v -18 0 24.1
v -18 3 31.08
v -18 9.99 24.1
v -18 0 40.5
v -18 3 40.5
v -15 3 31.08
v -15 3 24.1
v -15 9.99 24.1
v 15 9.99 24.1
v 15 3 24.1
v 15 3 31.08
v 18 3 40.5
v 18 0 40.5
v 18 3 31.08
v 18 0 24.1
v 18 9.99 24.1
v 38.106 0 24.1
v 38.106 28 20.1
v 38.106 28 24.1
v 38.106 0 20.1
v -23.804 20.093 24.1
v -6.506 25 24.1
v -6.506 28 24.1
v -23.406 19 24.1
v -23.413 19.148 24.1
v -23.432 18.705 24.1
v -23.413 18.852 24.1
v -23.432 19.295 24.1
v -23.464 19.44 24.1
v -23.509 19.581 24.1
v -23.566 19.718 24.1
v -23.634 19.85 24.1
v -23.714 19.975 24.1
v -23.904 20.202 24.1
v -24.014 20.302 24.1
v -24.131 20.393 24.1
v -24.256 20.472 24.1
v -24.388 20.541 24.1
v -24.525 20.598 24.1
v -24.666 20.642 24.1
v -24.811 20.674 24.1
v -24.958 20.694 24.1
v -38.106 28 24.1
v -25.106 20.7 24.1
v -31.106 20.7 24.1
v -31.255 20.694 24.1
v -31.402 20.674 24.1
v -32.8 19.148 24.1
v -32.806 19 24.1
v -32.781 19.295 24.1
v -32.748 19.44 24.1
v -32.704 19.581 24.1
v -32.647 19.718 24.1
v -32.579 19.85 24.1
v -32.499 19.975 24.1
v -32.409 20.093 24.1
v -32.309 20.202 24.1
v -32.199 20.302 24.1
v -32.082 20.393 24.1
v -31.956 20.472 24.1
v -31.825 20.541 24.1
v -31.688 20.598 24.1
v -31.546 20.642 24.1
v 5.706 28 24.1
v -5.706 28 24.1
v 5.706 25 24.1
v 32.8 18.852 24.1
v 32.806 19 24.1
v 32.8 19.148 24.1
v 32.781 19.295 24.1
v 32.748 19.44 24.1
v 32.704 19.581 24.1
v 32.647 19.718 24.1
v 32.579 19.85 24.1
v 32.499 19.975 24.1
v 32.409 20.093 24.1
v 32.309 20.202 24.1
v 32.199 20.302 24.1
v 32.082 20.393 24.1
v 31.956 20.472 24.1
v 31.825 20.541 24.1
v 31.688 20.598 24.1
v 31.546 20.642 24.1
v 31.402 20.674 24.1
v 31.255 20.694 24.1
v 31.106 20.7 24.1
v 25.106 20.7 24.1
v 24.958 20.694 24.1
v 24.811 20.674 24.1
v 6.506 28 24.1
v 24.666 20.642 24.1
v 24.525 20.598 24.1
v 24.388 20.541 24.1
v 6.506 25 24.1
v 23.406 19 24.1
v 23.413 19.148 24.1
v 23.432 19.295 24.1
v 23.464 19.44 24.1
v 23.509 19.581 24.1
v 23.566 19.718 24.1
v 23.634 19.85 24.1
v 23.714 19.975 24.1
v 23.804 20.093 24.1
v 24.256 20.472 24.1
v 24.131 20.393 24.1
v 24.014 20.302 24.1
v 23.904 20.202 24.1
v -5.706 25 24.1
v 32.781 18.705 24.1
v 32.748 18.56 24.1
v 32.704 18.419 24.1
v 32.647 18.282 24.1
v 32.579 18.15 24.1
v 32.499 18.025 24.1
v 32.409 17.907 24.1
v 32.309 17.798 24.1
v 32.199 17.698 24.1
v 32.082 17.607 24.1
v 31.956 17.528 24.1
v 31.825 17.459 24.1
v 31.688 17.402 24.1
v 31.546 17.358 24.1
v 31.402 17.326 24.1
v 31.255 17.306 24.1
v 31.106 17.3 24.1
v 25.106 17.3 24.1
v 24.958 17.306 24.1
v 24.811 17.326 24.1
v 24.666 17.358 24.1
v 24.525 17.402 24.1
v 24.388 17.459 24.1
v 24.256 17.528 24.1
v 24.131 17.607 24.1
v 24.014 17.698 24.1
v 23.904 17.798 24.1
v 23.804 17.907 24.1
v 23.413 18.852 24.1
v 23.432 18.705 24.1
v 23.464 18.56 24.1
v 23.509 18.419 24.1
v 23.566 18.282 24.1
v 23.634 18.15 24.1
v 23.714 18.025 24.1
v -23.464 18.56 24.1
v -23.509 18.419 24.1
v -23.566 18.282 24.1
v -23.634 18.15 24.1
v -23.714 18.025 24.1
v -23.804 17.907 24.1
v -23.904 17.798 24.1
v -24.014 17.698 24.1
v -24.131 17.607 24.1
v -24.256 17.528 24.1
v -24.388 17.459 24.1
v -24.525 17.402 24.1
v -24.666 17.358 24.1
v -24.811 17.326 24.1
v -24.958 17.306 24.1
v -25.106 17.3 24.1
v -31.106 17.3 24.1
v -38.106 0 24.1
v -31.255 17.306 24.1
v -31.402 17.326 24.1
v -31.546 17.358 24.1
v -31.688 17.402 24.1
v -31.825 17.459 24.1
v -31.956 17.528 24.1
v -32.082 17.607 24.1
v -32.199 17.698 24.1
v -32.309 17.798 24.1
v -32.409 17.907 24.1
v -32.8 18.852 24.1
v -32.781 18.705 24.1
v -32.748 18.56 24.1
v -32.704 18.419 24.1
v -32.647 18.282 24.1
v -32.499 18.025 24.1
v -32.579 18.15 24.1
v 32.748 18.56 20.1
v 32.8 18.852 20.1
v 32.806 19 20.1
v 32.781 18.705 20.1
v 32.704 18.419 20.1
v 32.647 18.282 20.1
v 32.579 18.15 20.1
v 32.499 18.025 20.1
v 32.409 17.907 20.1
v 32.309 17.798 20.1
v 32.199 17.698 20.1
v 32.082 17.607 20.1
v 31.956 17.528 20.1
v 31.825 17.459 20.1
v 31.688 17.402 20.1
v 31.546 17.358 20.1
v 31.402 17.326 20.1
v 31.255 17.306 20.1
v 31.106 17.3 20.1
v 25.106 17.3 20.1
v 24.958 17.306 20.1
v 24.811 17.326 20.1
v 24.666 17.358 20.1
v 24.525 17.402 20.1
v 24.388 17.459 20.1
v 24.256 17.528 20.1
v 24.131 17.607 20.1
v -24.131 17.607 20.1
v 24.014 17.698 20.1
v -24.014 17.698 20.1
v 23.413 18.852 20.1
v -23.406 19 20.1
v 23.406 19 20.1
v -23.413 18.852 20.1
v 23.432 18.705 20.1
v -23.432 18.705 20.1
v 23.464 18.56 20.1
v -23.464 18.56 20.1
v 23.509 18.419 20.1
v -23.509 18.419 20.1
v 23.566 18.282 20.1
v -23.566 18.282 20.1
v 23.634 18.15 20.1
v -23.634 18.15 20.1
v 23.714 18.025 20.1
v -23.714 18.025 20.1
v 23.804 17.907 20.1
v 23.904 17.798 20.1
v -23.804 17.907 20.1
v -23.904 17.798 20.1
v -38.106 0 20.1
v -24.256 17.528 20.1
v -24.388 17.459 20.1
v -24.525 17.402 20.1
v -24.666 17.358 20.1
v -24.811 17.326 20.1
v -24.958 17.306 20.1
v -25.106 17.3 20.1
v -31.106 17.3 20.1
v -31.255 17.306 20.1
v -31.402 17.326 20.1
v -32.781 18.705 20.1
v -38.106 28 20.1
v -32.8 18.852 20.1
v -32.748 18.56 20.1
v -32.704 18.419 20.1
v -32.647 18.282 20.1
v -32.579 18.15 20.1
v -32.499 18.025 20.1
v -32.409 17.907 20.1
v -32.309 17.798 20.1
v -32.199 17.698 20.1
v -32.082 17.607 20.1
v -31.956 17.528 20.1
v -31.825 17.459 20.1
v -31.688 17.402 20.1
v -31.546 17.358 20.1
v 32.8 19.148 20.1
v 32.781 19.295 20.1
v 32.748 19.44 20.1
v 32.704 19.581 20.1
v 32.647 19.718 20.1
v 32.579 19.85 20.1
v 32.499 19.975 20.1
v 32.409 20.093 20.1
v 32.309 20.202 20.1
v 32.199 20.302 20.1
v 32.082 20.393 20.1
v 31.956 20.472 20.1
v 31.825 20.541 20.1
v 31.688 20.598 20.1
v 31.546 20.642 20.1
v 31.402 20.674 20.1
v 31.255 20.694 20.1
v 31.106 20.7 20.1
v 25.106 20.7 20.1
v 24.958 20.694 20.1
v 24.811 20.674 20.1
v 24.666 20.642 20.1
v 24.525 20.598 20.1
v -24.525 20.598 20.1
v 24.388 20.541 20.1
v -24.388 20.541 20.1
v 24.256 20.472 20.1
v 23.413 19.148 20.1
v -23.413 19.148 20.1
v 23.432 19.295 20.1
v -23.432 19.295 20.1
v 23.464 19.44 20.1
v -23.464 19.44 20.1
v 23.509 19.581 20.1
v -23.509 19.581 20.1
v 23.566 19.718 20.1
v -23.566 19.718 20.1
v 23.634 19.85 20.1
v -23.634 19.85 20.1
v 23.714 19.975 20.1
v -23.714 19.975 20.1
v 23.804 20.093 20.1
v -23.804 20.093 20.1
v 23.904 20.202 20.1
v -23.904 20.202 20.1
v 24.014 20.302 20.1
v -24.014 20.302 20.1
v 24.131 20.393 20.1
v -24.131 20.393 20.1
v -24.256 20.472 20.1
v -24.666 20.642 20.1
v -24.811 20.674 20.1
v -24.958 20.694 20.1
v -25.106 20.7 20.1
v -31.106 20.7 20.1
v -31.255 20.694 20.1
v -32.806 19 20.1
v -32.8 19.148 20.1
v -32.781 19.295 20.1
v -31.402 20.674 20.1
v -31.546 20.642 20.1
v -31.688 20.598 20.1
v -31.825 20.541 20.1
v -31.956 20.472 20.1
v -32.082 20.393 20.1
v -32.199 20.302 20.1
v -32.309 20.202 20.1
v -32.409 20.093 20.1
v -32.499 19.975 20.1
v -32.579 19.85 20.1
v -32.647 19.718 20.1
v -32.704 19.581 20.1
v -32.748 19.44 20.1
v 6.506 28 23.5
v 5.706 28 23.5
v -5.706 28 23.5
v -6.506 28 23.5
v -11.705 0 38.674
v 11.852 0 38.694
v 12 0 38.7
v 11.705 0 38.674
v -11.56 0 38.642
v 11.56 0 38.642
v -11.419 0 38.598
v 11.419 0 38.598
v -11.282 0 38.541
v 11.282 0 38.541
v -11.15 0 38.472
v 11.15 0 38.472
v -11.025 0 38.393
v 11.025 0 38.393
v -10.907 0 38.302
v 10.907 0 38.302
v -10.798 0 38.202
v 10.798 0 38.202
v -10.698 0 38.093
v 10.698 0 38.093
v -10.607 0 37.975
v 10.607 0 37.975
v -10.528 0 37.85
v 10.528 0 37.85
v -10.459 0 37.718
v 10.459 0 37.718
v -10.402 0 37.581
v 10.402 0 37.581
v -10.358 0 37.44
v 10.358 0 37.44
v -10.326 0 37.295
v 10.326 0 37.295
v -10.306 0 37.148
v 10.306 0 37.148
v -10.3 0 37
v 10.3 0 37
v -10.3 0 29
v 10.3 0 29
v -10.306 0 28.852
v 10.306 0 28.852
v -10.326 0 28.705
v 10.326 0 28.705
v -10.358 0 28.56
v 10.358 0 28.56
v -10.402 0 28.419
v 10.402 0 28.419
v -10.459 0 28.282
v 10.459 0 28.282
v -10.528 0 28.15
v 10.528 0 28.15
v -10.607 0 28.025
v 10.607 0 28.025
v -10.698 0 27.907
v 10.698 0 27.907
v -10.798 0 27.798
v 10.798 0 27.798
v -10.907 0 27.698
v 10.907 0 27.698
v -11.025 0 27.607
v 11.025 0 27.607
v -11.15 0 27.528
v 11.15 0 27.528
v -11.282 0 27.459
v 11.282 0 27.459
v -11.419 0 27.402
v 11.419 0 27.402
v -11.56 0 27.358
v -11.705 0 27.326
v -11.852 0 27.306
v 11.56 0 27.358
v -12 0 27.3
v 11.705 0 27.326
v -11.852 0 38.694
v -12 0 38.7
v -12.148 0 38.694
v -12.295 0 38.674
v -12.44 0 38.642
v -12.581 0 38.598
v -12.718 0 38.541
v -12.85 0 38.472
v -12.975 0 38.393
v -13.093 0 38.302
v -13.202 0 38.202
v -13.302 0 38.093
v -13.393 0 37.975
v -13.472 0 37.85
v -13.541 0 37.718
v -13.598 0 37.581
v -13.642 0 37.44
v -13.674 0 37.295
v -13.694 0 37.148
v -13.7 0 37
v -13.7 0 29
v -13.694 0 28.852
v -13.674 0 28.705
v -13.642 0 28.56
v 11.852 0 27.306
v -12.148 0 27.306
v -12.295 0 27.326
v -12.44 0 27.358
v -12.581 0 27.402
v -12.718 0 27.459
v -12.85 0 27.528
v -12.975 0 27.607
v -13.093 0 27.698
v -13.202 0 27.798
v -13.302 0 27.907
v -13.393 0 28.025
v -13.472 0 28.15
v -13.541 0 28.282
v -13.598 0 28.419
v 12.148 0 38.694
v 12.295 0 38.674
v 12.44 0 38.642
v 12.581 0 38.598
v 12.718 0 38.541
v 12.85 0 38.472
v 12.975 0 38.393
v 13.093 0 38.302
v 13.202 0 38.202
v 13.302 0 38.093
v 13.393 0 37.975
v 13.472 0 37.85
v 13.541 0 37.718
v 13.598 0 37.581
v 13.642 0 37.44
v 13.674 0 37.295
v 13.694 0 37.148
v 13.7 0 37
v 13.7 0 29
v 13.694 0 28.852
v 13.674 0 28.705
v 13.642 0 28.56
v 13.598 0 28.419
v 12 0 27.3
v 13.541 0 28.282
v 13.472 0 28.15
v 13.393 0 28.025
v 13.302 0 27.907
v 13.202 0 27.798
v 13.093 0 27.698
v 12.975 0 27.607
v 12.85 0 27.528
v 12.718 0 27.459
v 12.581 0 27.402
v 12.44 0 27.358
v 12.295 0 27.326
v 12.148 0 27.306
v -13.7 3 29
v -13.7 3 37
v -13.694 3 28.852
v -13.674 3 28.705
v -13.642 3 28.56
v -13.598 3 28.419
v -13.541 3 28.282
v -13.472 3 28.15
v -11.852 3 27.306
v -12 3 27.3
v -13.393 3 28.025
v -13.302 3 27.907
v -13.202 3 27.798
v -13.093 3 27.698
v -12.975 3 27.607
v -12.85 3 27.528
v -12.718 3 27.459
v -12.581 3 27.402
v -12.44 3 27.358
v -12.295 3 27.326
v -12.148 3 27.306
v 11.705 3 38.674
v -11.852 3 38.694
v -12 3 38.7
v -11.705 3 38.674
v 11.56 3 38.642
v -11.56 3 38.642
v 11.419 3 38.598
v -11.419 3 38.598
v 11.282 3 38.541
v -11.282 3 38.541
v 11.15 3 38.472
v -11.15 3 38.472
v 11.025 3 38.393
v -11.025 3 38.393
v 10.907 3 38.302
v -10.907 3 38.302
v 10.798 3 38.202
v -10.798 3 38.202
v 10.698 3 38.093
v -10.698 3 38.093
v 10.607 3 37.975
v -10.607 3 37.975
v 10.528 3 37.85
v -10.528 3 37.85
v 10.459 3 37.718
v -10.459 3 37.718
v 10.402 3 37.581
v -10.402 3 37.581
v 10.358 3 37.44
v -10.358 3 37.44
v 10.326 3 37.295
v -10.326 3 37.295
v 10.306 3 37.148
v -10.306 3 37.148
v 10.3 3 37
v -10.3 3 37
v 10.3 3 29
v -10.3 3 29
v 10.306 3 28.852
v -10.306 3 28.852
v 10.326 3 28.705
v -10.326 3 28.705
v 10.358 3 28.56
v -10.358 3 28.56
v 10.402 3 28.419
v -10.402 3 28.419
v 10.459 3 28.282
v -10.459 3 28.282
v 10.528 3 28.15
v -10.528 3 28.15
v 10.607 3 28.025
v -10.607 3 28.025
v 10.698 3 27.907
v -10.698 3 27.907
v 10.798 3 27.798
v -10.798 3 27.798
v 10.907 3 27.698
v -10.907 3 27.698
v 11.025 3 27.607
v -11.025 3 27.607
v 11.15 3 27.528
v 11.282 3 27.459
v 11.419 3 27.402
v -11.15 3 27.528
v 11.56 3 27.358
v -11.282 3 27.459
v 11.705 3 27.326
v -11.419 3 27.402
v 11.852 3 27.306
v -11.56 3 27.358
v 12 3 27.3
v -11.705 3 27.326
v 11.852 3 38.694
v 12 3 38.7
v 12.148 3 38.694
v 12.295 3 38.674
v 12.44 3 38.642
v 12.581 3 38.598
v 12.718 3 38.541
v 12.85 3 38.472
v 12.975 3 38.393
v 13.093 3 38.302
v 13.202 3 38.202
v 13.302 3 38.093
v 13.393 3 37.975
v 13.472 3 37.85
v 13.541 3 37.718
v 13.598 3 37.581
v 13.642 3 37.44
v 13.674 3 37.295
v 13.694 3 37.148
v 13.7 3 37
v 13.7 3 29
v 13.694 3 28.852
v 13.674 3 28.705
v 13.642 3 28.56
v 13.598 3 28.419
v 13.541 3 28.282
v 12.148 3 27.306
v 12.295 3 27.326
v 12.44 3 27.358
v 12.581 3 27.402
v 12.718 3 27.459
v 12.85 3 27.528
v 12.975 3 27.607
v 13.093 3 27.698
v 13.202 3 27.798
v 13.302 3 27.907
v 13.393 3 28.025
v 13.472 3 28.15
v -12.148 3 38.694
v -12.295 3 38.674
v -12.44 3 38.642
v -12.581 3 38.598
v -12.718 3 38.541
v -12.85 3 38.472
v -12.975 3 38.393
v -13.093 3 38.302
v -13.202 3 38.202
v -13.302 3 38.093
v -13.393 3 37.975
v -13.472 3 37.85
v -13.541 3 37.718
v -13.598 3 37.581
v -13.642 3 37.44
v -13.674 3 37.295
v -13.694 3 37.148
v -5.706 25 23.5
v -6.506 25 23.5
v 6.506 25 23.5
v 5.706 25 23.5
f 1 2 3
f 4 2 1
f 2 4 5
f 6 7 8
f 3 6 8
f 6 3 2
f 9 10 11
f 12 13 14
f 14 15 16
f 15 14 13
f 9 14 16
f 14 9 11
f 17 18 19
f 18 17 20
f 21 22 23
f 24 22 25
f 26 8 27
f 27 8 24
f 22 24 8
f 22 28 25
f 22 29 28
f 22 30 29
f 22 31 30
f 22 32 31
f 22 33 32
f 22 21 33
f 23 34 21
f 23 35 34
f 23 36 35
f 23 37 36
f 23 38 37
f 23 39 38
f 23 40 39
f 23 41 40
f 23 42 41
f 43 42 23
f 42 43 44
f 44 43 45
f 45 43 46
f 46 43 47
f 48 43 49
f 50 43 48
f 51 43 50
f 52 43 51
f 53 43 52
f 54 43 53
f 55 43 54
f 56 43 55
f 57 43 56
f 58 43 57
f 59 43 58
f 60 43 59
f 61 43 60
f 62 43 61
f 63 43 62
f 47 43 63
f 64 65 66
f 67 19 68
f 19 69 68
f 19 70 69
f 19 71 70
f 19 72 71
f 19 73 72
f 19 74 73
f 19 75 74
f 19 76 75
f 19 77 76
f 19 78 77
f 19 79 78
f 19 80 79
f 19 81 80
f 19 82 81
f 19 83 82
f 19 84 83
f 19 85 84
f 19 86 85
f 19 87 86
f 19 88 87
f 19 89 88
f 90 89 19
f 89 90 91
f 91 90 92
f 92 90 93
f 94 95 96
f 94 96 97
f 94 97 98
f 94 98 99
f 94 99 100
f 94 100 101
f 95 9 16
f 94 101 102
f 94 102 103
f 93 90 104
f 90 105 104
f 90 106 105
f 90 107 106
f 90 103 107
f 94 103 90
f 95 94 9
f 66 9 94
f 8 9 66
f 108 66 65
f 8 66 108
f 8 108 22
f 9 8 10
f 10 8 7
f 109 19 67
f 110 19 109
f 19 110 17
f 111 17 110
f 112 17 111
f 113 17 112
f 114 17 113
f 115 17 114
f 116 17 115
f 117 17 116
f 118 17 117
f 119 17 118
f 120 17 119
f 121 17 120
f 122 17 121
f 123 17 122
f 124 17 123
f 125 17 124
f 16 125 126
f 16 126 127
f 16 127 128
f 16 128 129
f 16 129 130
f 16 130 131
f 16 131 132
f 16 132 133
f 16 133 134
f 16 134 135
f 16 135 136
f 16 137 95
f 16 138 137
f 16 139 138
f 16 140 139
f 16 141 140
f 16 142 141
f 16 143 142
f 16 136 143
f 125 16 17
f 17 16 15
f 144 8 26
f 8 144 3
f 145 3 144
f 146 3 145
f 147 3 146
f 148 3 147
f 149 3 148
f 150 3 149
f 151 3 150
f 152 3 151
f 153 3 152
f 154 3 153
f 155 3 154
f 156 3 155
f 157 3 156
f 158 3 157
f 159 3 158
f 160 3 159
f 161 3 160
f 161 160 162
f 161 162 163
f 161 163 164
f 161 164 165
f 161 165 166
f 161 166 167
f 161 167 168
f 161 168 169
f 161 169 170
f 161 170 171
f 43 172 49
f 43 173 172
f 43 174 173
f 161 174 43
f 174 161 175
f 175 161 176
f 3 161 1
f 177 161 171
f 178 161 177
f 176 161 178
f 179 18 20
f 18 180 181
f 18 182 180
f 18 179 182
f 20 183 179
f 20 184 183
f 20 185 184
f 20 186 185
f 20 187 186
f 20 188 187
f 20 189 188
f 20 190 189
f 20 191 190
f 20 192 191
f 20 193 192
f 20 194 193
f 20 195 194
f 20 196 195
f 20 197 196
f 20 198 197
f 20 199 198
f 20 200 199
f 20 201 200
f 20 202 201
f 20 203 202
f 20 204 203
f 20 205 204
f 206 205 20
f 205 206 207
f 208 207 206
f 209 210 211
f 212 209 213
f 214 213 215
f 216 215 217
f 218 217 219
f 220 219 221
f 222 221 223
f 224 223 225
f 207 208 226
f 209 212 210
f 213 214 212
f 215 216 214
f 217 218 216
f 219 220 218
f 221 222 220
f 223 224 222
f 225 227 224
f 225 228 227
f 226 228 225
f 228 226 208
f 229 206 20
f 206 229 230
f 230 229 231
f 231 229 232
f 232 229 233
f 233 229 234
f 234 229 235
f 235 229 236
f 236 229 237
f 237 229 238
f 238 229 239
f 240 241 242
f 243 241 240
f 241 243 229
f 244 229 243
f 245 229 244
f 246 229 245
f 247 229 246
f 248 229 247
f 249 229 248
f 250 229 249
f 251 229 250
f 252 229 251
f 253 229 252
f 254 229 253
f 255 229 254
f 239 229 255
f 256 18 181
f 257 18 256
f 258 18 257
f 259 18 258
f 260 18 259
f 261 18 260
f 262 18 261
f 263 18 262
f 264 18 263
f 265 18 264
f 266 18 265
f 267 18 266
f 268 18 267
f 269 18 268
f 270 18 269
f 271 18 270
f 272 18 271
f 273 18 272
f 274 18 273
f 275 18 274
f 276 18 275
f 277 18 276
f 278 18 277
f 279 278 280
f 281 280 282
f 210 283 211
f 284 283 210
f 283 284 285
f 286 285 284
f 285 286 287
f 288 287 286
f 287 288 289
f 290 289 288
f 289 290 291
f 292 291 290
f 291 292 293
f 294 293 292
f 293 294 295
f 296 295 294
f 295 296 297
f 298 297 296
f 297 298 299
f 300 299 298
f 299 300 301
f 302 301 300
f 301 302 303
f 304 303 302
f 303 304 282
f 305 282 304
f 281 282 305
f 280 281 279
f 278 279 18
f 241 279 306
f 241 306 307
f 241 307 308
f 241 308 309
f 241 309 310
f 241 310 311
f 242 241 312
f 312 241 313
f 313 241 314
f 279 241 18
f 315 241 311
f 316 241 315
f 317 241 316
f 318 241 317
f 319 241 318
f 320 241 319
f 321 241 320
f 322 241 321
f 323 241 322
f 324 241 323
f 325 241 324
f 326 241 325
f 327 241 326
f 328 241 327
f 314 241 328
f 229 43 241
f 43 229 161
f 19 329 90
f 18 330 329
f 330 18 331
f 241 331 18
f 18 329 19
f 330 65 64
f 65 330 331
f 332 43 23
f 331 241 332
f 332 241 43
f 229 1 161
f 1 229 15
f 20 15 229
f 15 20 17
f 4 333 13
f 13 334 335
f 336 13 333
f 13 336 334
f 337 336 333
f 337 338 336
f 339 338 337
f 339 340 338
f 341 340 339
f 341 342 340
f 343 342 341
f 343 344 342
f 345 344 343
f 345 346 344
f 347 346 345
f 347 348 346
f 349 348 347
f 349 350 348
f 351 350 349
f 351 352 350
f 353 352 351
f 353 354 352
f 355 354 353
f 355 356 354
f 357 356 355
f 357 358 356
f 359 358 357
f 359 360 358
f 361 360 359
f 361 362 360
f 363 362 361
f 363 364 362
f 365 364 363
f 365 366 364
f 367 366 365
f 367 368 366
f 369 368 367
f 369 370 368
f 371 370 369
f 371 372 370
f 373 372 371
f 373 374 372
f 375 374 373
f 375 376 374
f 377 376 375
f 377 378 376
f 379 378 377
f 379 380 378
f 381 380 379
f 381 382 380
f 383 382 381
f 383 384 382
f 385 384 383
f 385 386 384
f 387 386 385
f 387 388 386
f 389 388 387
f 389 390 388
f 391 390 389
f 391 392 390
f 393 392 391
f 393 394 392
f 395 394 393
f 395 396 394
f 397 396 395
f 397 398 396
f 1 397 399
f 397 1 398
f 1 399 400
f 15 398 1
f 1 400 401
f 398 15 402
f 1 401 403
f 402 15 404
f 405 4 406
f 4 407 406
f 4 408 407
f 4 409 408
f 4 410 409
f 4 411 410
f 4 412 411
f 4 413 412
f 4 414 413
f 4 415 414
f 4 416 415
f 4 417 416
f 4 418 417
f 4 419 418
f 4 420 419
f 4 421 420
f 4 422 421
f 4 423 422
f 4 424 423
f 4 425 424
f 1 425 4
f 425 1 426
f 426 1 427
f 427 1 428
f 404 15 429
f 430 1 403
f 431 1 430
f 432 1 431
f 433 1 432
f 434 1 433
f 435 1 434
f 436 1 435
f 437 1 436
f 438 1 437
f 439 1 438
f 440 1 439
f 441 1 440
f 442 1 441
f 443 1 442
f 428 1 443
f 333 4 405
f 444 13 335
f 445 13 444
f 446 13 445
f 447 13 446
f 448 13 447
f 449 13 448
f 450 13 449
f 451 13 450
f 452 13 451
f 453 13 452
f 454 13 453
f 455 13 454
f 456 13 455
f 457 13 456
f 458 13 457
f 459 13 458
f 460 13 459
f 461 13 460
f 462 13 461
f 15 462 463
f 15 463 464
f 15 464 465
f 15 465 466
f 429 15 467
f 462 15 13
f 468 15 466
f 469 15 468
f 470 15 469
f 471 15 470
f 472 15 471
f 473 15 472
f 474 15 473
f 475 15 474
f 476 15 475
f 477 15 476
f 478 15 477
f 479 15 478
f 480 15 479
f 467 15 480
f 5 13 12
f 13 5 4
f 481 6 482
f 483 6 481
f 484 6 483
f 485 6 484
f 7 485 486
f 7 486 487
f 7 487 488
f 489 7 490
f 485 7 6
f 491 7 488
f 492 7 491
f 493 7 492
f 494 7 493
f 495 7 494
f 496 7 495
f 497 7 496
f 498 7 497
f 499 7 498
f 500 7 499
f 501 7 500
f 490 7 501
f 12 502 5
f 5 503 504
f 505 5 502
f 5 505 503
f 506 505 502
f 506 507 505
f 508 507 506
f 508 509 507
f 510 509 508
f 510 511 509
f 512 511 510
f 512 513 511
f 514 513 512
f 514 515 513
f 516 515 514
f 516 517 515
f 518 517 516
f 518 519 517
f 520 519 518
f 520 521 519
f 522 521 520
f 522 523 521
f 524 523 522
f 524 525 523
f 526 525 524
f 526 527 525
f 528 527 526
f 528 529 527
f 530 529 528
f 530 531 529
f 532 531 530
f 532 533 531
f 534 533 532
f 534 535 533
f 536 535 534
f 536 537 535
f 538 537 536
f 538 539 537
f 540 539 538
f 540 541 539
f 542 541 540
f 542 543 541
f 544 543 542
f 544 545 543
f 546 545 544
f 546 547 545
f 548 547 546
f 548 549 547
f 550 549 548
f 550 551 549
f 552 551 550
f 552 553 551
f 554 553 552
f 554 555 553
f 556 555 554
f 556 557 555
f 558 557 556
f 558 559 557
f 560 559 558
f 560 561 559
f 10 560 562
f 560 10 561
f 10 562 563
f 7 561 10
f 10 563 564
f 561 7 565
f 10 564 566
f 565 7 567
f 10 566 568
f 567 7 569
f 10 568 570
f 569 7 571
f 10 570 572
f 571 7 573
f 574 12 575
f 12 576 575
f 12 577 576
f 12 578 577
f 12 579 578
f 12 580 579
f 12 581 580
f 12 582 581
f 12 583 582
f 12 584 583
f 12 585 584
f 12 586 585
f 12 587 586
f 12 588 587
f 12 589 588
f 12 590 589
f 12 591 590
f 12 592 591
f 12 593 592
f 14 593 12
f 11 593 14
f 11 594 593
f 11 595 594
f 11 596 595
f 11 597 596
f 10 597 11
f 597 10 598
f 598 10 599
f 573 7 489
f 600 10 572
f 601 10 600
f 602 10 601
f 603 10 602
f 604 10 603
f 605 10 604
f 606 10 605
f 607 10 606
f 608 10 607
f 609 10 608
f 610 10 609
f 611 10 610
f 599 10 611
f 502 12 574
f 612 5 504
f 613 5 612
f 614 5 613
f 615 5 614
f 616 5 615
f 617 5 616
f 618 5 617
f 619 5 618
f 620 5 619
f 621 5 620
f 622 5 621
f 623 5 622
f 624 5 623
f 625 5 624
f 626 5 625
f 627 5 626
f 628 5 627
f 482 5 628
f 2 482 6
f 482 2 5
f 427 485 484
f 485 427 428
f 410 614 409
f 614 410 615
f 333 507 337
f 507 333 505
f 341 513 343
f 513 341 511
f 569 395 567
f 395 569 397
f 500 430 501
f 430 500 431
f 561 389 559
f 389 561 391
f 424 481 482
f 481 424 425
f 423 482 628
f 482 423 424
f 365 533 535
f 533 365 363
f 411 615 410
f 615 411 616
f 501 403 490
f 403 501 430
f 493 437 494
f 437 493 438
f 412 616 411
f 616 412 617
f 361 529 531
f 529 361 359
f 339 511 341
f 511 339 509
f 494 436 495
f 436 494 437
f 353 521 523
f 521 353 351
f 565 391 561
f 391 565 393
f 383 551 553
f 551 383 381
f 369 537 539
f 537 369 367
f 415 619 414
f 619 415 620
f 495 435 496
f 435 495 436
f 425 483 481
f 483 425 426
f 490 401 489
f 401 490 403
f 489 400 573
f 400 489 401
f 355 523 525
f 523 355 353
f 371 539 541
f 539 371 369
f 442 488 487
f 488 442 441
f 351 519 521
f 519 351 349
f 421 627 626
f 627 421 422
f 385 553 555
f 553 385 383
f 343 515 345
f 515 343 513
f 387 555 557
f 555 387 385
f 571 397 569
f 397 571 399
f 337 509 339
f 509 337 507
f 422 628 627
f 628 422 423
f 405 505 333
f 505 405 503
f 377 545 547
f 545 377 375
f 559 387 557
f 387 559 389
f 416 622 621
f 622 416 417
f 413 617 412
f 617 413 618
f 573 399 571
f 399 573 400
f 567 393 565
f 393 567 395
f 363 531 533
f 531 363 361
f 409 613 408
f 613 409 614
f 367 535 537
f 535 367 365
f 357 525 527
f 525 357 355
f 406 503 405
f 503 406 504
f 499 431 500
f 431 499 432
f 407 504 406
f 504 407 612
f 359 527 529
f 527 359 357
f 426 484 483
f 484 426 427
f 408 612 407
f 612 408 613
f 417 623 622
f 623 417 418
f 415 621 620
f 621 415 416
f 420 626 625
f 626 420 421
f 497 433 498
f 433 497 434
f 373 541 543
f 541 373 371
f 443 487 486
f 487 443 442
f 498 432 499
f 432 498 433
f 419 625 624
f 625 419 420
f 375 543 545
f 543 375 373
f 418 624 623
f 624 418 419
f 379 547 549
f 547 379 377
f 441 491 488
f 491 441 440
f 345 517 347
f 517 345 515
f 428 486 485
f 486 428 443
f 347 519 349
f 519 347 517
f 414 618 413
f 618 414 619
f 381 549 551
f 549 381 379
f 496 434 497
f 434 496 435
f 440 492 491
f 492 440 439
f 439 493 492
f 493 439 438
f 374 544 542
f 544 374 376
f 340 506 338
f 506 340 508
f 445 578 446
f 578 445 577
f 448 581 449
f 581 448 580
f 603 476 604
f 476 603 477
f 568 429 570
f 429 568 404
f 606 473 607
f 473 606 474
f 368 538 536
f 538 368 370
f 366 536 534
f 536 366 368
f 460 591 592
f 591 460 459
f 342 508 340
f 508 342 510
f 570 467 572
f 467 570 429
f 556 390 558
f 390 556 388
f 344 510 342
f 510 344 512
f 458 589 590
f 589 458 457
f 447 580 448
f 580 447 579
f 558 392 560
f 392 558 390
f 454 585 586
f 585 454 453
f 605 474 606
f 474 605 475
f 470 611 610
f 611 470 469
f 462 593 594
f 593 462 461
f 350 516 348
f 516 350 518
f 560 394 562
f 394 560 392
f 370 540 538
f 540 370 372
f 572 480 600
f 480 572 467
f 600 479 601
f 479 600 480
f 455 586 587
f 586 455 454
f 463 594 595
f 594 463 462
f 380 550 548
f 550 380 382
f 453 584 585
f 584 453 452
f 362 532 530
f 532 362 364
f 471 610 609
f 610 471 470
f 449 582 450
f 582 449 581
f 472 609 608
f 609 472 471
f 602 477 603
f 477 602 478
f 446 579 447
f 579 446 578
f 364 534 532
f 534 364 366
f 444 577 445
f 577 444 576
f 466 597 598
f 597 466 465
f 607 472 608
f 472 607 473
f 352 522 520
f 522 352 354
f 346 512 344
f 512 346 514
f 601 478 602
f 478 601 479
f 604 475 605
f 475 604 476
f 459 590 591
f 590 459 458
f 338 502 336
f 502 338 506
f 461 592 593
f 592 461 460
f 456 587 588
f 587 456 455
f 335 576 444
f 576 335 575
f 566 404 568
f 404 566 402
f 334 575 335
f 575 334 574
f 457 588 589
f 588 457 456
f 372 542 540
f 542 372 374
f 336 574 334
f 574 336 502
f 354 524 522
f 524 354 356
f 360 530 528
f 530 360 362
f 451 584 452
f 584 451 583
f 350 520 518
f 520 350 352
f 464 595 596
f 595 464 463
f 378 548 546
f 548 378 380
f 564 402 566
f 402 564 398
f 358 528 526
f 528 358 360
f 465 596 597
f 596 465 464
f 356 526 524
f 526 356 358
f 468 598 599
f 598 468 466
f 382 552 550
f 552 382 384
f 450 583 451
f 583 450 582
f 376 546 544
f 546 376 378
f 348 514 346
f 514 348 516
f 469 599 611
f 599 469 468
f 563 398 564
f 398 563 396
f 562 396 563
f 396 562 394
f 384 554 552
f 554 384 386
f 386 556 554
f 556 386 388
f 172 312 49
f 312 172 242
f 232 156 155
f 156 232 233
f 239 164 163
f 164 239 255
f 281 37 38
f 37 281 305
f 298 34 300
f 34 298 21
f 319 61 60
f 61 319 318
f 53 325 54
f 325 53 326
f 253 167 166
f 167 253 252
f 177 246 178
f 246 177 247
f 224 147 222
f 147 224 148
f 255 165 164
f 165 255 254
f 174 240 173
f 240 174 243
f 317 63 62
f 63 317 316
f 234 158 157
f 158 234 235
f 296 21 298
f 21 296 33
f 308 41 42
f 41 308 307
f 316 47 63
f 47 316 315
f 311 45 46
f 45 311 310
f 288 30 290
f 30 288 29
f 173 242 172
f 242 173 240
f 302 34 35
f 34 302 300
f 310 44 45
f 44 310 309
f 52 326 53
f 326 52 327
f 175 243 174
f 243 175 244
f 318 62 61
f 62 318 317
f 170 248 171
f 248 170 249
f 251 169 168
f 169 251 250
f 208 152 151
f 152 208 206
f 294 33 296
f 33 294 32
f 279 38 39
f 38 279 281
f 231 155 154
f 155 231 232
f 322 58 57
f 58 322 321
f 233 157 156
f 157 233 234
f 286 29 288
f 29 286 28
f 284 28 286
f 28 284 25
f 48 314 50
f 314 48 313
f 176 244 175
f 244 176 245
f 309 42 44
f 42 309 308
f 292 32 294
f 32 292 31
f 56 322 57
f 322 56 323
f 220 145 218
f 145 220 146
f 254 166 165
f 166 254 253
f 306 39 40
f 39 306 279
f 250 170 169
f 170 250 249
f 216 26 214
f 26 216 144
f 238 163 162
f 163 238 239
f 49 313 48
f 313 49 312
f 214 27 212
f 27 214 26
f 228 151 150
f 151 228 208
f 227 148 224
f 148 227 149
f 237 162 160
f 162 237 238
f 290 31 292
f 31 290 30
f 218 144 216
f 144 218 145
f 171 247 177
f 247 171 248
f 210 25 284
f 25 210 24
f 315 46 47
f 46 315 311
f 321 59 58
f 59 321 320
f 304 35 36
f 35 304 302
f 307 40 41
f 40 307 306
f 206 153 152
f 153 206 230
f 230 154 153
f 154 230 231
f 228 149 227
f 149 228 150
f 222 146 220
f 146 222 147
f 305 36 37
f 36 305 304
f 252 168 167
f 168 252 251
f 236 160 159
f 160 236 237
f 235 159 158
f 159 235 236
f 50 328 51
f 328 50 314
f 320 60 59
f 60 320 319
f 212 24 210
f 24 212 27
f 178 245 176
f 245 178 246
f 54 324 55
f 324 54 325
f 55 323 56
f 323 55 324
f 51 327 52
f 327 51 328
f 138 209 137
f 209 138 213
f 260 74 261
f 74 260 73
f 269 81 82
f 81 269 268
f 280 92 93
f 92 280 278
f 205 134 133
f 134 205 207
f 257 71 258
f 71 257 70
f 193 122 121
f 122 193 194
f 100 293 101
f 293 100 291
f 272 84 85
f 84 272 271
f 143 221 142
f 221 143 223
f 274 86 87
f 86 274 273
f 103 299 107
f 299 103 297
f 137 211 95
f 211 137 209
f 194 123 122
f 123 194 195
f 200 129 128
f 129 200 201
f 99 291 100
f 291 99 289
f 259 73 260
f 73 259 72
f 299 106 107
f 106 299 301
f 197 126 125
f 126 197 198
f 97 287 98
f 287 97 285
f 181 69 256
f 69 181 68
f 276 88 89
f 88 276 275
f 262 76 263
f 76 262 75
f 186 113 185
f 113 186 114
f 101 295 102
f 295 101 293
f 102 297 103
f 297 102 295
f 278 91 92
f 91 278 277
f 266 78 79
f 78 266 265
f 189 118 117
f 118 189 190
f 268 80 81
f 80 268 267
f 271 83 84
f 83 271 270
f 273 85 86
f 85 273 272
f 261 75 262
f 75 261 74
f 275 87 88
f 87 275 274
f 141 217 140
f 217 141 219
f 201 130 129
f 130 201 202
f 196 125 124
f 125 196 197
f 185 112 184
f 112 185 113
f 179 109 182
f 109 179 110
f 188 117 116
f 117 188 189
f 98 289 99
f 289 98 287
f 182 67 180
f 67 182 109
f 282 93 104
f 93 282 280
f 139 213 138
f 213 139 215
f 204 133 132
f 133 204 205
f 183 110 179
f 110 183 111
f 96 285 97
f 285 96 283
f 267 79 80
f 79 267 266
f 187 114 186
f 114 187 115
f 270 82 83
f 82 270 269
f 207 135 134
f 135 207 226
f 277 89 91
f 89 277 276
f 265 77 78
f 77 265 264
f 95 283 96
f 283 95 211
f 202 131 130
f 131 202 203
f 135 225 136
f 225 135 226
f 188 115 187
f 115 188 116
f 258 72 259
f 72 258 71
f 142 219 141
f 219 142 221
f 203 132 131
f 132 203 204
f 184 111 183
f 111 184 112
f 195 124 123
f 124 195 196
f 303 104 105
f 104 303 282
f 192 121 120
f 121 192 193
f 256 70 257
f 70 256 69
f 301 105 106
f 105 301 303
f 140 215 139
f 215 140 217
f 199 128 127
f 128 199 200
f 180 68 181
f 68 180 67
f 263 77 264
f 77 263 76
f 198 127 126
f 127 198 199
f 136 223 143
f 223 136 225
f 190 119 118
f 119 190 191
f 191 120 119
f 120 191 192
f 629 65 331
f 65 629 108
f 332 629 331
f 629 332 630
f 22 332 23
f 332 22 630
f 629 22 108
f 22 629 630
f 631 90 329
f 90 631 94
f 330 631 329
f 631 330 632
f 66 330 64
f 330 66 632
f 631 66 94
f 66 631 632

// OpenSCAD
// file: dimensoes_geradas.scad
// ARQUIVO GERADO por sim/export_gains.py - não edite à mão; mude sim/params.py e gere de novo.
// Unidades: mm. Estas dimensões saem do dimensionamento (sim/sizing.py).

l_w            = 96;   // pivô -> eixo do motor
n_parafusos    = 12;
r_parafusos    = 48;   // raio do círculo de parafusos M8
r_aro_int      = 39;
r_ext          = 58;   // raio externo do aro
r_aleta        = 66;   // raio externo do anel dentado do encoder
esp_roda       = 12;
esp_alma       = 5;
r_cubo         = 17;
n_raios        = 6;
larg_raio      = 10;
esp_aleta      = 2;
n_ranhuras     = 40;
furo_m8        = 8.4;
angulo_batente = 25;   // graus: onde o batente segura o braço
// file: params.scad
// Medidas das peças compradas e escolhas de projeto. Unidades: mm.
//
// CONFERIR = medir com paquímetro na peça real antes de imprimir; os valores
// abaixo são os típicos desses componentes. Este arquivo só tem números
// (nada de expressões): cad/folgas.py lê estes valores para conferir as folgas.
//
// Eixos do conjunto montado: origem no eixo do pivô; Z para cima (ao longo do
// braço); Y ao longo do pivô, positivo para o lado da roda; X lateral.

include <dimensoes_geradas.scad>

$fn = 72;
folga = 0.25;              // folga de impressão em encaixes

// ---- Motor 775 (CONFERIR) ----
motor_d          = 44.5;   // diâmetro da carcaça (há versões de 42)
motor_comp       = 67;     // comprimento da carcaça
motor_ressalto_d = 17.5;   // ressalto do mancal na face
motor_ressalto_h = 4.6;
motor_furos_dist = 29;     // distância entre os 2 furos M4 da face
motor_parafuso_d = 4.4;    // passagem do M4
motor_eixo_d     = 5;
motor_eixo_comp  = 17;     // eixo para fora do ressalto

// ---- Flange metálico de 5 mm (CONFERIR) ----
flange_d         = 22;     // diâmetro do disco
flange_esp       = 3;      // espessura do disco
flange_cubo_d    = 10;     // diâmetro do cubo (parte com os parafusos de trava)
flange_cubo_comp = 9;      // comprimento do cubo
flange_pcd       = 16;     // diâmetro do círculo dos furos
flange_n         = 4;      // número de furos

// ---- Fixadores ----
inserto_m3_d     = 4.0;    // furo para inserto térmico M3 (CONFERIR no seu inserto)
inserto_m3_prof  = 5;
passagem_m3      = 3.4;
m8_chave         = 13;     // porca M8, entre faces
m8_porca_h       = 6.5;
m8_cabeca_h      = 5.3;
m8_arruela_h     = 1.6;
m8_comp          = 16;     // parafuso M8x16 (mais comprido bate no braço)
m4_cabeca_h      = 3;      // cabeça do M4 que prende o motor

// ---- Rolamento 608-ZZ, barra e colar ----
rol_d            = 22;
rol_esp          = 7;
rol_ombro_d      = 15;     // furo entre os assentos: encosta só no anel externo
barra_d          = 8;
colar_d          = 14;     // colar SCC8 8-14-8
colar_esp        = 8;

// ---- Sensor óptico de fenda com LM393 (CONFERIR) ----
sens_comp        = 32;     // placa
sens_larg        = 14;
sens_pcb         = 1.6;
sens_torre_h     = 10.8;   // altura das torres acima da placa
sens_feixe       = 2.8;    // distância do topo das torres ao feixe
sens_fenda       = 5;      // vão entre as torres
sens_cabeca      = 6;      // comprimento do bloco do sensor ao longo da placa
sens_penetra     = 6.5;    // quanto o anel dentado entra na fenda
sens_furo_pos    = 22;     // do centro óptico ao furo de fixação da placa
sens_furo_d      = 2.6;    // furo guia para parafuso M3 direto no plástico

// ---- MPU6050 (GY-521) ----
mpu_furos_dist   = 15.2;
mpu_h            = 48;     // altura dos furos acima do pivô

// ---- Braço ----
esp_braco        = 8;      // espessura da placa
esp_face_motor   = 3.5;    // parede que sobra onde o motor é parafusado
r_pivo           = 18;     // raio do contorno em volta do pivô
tubo_d           = 32;     // tubo dos rolamentos
tubo_comp        = 34;
cauda            = 40;     // prolongamento abaixo do pivô que bate nos batentes
larg_cauda       = 14;
y_roda           = 8;      // da face da frente do braço até a face de trás da roda
sup_furos_dist   = 24;     // insertos do suporte dos sensores
sup_furos_h      = 33;     // altura desses insertos acima do pivô

// ---- Suporte dos sensores ----
sup_esp          = 4;      // espessura da prateleira
sup_aba_esp      = 3;      // espessura da aba parafusada no braço
sup_aba_alt      = 18;
sup_rasgo        = 8;      // curso do ajuste de altura

// ---- Base ----
h_pivo           = 50;     // altura do pivô acima do tampo da base
base_x           = 170;
base_y_frente    = 45;     // quanto a base avança para o lado da roda
base_y_tras      = 140;    // quanto avança para trás (eletrônica)
base_esp         = 6;
mancal_larg      = 26;     // suportes da barra
mancal_esp       = 12;
mancal_topo      = 11;     // material acima do centro da barra
batente_topo     = -13;    // altura do topo dos batentes (abaixo do pivô)
tpu_esp          = 3;      // almofada de TPU colada no batente

// ---- Bandeja da eletrônica ----
bandeja_x        = 150;
bandeja_y        = 66;
bandeja_esp      = 3;
bandeja_passo    = 10;     // grade de furos M3 para prender os módulos
bandeja_altura   = 8;      // colunas na base (fios passam por baixo)

// ---- Proteção de policarbonato (placa em pé na frente da roda) ----
prot_larg        = 230;
prot_alt         = 230;
prot_rasgo       = 3.4;    // ranhura para placa de 2 a 3 mm
prot_y           = 39;     // plano da placa
prot_poste_x     = 60;     // posição dos dois postes
poste_larg       = 16;
poste_prof       = 14;
poste_alt        = 40;

// ---- Fixação da base na mesa ----
furo_fixacao     = 4.5;
// file: derivados.scad
// Grandezas calculadas a partir de params.scad. As mesmas contas estão em
// cad/folgas.py, que confere as folgas sem precisar do OpenSCAD.

include <params.scad>

// eixo do motor para fora da face da frente do braço
eixo_fora = motor_eixo_comp + motor_ressalto_h - esp_face_motor;

// pilha no eixo, medida a partir da face da frente do braço (Y)
y_roda_frente = y_roda + esp_roda;              // face da frente da roda (lado das cabeças M8)
y_alma        = y_roda_frente - esp_alma;       // face de trás do cubo da roda = onde o flange encosta
y_flange      = y_alma - flange_esp;            // disco do flange
y_cubo        = y_flange - flange_cubo_comp;    // ponta do cubo do flange (lado do motor)
y_aleta       = y_roda_frente - esp_aleta / 2;  // plano médio do anel dentado

// sensores: as torres apontam para o centro da roda
r_feixe       = r_aleta - sens_penetra + sens_feixe;                   // raio onde o feixe corta os dentes
h_prateleira  = l_w - (r_aleta - sens_penetra + sens_torre_h + sens_pcb);  // topo da prateleira acima do pivô
// dois sensores defasados de 1 + 1/4 de passo -> sinais em quadratura
ang_quadratura = 1.25 * 360 / n_ranhuras;
dist_sensores  = 2 * r_feixe * sin(ang_quadratura / 2);
sup_larg       = dist_sensores + 2 * (sens_comp - sens_cabeca / 2) + 6;
sup_prof       = y_aleta + sens_larg / 2 + 2;

// posições ao longo do pivô (Y) dos suportes da barra
y_mancal_frente = colar_esp + 1;                  // depois do colar da frente
y_mancal_tras   = -(tubo_comp + colar_esp + 1) - mancal_esp;

// suporte dos sensores
z_prat_base   = h_prateleira - sup_esp;
aba_topo      = sup_furos_h + sup_rasgo / 2 + 3.5;
aba_larg      = sup_furos_dist + 12;

// base
z_base        = -h_pivo;                 // tampo da base
y_bandeja     = -base_y_tras + 4 + bandeja_y / 2;

// almofada de TPU: cobre a face inclinada do batente
tpu_comp      = (batente_topo - z_base) / cos(angulo_batente) - 3;
tpu_larg      = 16;

// barra: do suporte de trás ao da frente, 3 mm para fora de cada lado
barra_comp    = (y_mancal_frente + mancal_esp) - y_mancal_tras + 6;
// main file
// Suporte dos 2 sensores ópticos de fenda. Imprimir como está (prateleira na
// mesa, aba para cima), sem suportes.
//
// Desenhado já na posição de montagem: a aba encosta na face da frente do
// braço (Y = 0) e a prateleira fica embaixo da roda. Os sensores ficam deitados
// na prateleira com as torres para cima, abraçando o anel dentado da roda.
//
// Ajustes:
//  - rasgos verticais da aba: altura (quanto o anel entra na fenda);
//  - rasgos dos sensores (ao longo de X): defasagem entre os dois sinais.
//    Os dois precisam ficar a 1 + 1/4 de dente um do outro para dar quadratura.

include <derivados.scad>

module rasgo(p1, p2, d, h) {
    hull() {
        translate(p1) cylinder(d = d, h = h);
        translate(p2) cylinder(d = d, h = h);
    }
}

module suporte_sensores() {
    difference() {
        union() {
            // prateleira
            translate([-sup_larg / 2, 0, z_prat_base]) cube([sup_larg, sup_prof, sup_esp]);
            // aba parafusada no braço
            translate([-aba_larg / 2, 0, z_prat_base]) cube([aba_larg, sup_aba_esp, aba_topo - z_prat_base]);
            // nervuras entre aba e prateleira (fora da área dos sensores)
            for (s = [-1, 1])
                translate([s * (aba_larg / 2 - 1.5) - 1.5, 0, h_prateleira - 0.01])
                    rotate([90, 0, 90])
                        linear_extrude(height = 3)
                            polygon([[sup_aba_esp - 0.01, 0], [sup_aba_esp + 7, 0], [sup_aba_esp - 0.01, 7]]);
        }
        // rasgos verticais da aba (parafusos M3 nos insertos do braço)
        for (s = [-1, 1])
            translate([s * sup_furos_dist / 2, -1, 0])
                rotate([-90, 0, 0])
                    rasgo([0, -(sup_furos_h - sup_rasgo / 2), 0], [0, -(sup_furos_h + sup_rasgo / 2), 0],
                          passagem_m3, sup_aba_esp + 2);
        // rasgos dos sensores: parafuso M3 + porca por baixo
        for (s = [-1, 1]) {
            x = s * (dist_sensores / 2 + sens_furo_pos);
            rasgo([x - 3, y_aleta, z_prat_base - 1], [x + 3, y_aleta, z_prat_base - 1], passagem_m3, sup_esp + 2);
        }
        // marcas da posição nominal do centro óptico de cada sensor
        for (s = [-1, 1])
            translate([s * dist_sensores / 2 - 0.4, sup_prof - 3, h_prateleira - 0.6]) cube([0.8, 4, 1]);
    }
}

suporte_sensores();
